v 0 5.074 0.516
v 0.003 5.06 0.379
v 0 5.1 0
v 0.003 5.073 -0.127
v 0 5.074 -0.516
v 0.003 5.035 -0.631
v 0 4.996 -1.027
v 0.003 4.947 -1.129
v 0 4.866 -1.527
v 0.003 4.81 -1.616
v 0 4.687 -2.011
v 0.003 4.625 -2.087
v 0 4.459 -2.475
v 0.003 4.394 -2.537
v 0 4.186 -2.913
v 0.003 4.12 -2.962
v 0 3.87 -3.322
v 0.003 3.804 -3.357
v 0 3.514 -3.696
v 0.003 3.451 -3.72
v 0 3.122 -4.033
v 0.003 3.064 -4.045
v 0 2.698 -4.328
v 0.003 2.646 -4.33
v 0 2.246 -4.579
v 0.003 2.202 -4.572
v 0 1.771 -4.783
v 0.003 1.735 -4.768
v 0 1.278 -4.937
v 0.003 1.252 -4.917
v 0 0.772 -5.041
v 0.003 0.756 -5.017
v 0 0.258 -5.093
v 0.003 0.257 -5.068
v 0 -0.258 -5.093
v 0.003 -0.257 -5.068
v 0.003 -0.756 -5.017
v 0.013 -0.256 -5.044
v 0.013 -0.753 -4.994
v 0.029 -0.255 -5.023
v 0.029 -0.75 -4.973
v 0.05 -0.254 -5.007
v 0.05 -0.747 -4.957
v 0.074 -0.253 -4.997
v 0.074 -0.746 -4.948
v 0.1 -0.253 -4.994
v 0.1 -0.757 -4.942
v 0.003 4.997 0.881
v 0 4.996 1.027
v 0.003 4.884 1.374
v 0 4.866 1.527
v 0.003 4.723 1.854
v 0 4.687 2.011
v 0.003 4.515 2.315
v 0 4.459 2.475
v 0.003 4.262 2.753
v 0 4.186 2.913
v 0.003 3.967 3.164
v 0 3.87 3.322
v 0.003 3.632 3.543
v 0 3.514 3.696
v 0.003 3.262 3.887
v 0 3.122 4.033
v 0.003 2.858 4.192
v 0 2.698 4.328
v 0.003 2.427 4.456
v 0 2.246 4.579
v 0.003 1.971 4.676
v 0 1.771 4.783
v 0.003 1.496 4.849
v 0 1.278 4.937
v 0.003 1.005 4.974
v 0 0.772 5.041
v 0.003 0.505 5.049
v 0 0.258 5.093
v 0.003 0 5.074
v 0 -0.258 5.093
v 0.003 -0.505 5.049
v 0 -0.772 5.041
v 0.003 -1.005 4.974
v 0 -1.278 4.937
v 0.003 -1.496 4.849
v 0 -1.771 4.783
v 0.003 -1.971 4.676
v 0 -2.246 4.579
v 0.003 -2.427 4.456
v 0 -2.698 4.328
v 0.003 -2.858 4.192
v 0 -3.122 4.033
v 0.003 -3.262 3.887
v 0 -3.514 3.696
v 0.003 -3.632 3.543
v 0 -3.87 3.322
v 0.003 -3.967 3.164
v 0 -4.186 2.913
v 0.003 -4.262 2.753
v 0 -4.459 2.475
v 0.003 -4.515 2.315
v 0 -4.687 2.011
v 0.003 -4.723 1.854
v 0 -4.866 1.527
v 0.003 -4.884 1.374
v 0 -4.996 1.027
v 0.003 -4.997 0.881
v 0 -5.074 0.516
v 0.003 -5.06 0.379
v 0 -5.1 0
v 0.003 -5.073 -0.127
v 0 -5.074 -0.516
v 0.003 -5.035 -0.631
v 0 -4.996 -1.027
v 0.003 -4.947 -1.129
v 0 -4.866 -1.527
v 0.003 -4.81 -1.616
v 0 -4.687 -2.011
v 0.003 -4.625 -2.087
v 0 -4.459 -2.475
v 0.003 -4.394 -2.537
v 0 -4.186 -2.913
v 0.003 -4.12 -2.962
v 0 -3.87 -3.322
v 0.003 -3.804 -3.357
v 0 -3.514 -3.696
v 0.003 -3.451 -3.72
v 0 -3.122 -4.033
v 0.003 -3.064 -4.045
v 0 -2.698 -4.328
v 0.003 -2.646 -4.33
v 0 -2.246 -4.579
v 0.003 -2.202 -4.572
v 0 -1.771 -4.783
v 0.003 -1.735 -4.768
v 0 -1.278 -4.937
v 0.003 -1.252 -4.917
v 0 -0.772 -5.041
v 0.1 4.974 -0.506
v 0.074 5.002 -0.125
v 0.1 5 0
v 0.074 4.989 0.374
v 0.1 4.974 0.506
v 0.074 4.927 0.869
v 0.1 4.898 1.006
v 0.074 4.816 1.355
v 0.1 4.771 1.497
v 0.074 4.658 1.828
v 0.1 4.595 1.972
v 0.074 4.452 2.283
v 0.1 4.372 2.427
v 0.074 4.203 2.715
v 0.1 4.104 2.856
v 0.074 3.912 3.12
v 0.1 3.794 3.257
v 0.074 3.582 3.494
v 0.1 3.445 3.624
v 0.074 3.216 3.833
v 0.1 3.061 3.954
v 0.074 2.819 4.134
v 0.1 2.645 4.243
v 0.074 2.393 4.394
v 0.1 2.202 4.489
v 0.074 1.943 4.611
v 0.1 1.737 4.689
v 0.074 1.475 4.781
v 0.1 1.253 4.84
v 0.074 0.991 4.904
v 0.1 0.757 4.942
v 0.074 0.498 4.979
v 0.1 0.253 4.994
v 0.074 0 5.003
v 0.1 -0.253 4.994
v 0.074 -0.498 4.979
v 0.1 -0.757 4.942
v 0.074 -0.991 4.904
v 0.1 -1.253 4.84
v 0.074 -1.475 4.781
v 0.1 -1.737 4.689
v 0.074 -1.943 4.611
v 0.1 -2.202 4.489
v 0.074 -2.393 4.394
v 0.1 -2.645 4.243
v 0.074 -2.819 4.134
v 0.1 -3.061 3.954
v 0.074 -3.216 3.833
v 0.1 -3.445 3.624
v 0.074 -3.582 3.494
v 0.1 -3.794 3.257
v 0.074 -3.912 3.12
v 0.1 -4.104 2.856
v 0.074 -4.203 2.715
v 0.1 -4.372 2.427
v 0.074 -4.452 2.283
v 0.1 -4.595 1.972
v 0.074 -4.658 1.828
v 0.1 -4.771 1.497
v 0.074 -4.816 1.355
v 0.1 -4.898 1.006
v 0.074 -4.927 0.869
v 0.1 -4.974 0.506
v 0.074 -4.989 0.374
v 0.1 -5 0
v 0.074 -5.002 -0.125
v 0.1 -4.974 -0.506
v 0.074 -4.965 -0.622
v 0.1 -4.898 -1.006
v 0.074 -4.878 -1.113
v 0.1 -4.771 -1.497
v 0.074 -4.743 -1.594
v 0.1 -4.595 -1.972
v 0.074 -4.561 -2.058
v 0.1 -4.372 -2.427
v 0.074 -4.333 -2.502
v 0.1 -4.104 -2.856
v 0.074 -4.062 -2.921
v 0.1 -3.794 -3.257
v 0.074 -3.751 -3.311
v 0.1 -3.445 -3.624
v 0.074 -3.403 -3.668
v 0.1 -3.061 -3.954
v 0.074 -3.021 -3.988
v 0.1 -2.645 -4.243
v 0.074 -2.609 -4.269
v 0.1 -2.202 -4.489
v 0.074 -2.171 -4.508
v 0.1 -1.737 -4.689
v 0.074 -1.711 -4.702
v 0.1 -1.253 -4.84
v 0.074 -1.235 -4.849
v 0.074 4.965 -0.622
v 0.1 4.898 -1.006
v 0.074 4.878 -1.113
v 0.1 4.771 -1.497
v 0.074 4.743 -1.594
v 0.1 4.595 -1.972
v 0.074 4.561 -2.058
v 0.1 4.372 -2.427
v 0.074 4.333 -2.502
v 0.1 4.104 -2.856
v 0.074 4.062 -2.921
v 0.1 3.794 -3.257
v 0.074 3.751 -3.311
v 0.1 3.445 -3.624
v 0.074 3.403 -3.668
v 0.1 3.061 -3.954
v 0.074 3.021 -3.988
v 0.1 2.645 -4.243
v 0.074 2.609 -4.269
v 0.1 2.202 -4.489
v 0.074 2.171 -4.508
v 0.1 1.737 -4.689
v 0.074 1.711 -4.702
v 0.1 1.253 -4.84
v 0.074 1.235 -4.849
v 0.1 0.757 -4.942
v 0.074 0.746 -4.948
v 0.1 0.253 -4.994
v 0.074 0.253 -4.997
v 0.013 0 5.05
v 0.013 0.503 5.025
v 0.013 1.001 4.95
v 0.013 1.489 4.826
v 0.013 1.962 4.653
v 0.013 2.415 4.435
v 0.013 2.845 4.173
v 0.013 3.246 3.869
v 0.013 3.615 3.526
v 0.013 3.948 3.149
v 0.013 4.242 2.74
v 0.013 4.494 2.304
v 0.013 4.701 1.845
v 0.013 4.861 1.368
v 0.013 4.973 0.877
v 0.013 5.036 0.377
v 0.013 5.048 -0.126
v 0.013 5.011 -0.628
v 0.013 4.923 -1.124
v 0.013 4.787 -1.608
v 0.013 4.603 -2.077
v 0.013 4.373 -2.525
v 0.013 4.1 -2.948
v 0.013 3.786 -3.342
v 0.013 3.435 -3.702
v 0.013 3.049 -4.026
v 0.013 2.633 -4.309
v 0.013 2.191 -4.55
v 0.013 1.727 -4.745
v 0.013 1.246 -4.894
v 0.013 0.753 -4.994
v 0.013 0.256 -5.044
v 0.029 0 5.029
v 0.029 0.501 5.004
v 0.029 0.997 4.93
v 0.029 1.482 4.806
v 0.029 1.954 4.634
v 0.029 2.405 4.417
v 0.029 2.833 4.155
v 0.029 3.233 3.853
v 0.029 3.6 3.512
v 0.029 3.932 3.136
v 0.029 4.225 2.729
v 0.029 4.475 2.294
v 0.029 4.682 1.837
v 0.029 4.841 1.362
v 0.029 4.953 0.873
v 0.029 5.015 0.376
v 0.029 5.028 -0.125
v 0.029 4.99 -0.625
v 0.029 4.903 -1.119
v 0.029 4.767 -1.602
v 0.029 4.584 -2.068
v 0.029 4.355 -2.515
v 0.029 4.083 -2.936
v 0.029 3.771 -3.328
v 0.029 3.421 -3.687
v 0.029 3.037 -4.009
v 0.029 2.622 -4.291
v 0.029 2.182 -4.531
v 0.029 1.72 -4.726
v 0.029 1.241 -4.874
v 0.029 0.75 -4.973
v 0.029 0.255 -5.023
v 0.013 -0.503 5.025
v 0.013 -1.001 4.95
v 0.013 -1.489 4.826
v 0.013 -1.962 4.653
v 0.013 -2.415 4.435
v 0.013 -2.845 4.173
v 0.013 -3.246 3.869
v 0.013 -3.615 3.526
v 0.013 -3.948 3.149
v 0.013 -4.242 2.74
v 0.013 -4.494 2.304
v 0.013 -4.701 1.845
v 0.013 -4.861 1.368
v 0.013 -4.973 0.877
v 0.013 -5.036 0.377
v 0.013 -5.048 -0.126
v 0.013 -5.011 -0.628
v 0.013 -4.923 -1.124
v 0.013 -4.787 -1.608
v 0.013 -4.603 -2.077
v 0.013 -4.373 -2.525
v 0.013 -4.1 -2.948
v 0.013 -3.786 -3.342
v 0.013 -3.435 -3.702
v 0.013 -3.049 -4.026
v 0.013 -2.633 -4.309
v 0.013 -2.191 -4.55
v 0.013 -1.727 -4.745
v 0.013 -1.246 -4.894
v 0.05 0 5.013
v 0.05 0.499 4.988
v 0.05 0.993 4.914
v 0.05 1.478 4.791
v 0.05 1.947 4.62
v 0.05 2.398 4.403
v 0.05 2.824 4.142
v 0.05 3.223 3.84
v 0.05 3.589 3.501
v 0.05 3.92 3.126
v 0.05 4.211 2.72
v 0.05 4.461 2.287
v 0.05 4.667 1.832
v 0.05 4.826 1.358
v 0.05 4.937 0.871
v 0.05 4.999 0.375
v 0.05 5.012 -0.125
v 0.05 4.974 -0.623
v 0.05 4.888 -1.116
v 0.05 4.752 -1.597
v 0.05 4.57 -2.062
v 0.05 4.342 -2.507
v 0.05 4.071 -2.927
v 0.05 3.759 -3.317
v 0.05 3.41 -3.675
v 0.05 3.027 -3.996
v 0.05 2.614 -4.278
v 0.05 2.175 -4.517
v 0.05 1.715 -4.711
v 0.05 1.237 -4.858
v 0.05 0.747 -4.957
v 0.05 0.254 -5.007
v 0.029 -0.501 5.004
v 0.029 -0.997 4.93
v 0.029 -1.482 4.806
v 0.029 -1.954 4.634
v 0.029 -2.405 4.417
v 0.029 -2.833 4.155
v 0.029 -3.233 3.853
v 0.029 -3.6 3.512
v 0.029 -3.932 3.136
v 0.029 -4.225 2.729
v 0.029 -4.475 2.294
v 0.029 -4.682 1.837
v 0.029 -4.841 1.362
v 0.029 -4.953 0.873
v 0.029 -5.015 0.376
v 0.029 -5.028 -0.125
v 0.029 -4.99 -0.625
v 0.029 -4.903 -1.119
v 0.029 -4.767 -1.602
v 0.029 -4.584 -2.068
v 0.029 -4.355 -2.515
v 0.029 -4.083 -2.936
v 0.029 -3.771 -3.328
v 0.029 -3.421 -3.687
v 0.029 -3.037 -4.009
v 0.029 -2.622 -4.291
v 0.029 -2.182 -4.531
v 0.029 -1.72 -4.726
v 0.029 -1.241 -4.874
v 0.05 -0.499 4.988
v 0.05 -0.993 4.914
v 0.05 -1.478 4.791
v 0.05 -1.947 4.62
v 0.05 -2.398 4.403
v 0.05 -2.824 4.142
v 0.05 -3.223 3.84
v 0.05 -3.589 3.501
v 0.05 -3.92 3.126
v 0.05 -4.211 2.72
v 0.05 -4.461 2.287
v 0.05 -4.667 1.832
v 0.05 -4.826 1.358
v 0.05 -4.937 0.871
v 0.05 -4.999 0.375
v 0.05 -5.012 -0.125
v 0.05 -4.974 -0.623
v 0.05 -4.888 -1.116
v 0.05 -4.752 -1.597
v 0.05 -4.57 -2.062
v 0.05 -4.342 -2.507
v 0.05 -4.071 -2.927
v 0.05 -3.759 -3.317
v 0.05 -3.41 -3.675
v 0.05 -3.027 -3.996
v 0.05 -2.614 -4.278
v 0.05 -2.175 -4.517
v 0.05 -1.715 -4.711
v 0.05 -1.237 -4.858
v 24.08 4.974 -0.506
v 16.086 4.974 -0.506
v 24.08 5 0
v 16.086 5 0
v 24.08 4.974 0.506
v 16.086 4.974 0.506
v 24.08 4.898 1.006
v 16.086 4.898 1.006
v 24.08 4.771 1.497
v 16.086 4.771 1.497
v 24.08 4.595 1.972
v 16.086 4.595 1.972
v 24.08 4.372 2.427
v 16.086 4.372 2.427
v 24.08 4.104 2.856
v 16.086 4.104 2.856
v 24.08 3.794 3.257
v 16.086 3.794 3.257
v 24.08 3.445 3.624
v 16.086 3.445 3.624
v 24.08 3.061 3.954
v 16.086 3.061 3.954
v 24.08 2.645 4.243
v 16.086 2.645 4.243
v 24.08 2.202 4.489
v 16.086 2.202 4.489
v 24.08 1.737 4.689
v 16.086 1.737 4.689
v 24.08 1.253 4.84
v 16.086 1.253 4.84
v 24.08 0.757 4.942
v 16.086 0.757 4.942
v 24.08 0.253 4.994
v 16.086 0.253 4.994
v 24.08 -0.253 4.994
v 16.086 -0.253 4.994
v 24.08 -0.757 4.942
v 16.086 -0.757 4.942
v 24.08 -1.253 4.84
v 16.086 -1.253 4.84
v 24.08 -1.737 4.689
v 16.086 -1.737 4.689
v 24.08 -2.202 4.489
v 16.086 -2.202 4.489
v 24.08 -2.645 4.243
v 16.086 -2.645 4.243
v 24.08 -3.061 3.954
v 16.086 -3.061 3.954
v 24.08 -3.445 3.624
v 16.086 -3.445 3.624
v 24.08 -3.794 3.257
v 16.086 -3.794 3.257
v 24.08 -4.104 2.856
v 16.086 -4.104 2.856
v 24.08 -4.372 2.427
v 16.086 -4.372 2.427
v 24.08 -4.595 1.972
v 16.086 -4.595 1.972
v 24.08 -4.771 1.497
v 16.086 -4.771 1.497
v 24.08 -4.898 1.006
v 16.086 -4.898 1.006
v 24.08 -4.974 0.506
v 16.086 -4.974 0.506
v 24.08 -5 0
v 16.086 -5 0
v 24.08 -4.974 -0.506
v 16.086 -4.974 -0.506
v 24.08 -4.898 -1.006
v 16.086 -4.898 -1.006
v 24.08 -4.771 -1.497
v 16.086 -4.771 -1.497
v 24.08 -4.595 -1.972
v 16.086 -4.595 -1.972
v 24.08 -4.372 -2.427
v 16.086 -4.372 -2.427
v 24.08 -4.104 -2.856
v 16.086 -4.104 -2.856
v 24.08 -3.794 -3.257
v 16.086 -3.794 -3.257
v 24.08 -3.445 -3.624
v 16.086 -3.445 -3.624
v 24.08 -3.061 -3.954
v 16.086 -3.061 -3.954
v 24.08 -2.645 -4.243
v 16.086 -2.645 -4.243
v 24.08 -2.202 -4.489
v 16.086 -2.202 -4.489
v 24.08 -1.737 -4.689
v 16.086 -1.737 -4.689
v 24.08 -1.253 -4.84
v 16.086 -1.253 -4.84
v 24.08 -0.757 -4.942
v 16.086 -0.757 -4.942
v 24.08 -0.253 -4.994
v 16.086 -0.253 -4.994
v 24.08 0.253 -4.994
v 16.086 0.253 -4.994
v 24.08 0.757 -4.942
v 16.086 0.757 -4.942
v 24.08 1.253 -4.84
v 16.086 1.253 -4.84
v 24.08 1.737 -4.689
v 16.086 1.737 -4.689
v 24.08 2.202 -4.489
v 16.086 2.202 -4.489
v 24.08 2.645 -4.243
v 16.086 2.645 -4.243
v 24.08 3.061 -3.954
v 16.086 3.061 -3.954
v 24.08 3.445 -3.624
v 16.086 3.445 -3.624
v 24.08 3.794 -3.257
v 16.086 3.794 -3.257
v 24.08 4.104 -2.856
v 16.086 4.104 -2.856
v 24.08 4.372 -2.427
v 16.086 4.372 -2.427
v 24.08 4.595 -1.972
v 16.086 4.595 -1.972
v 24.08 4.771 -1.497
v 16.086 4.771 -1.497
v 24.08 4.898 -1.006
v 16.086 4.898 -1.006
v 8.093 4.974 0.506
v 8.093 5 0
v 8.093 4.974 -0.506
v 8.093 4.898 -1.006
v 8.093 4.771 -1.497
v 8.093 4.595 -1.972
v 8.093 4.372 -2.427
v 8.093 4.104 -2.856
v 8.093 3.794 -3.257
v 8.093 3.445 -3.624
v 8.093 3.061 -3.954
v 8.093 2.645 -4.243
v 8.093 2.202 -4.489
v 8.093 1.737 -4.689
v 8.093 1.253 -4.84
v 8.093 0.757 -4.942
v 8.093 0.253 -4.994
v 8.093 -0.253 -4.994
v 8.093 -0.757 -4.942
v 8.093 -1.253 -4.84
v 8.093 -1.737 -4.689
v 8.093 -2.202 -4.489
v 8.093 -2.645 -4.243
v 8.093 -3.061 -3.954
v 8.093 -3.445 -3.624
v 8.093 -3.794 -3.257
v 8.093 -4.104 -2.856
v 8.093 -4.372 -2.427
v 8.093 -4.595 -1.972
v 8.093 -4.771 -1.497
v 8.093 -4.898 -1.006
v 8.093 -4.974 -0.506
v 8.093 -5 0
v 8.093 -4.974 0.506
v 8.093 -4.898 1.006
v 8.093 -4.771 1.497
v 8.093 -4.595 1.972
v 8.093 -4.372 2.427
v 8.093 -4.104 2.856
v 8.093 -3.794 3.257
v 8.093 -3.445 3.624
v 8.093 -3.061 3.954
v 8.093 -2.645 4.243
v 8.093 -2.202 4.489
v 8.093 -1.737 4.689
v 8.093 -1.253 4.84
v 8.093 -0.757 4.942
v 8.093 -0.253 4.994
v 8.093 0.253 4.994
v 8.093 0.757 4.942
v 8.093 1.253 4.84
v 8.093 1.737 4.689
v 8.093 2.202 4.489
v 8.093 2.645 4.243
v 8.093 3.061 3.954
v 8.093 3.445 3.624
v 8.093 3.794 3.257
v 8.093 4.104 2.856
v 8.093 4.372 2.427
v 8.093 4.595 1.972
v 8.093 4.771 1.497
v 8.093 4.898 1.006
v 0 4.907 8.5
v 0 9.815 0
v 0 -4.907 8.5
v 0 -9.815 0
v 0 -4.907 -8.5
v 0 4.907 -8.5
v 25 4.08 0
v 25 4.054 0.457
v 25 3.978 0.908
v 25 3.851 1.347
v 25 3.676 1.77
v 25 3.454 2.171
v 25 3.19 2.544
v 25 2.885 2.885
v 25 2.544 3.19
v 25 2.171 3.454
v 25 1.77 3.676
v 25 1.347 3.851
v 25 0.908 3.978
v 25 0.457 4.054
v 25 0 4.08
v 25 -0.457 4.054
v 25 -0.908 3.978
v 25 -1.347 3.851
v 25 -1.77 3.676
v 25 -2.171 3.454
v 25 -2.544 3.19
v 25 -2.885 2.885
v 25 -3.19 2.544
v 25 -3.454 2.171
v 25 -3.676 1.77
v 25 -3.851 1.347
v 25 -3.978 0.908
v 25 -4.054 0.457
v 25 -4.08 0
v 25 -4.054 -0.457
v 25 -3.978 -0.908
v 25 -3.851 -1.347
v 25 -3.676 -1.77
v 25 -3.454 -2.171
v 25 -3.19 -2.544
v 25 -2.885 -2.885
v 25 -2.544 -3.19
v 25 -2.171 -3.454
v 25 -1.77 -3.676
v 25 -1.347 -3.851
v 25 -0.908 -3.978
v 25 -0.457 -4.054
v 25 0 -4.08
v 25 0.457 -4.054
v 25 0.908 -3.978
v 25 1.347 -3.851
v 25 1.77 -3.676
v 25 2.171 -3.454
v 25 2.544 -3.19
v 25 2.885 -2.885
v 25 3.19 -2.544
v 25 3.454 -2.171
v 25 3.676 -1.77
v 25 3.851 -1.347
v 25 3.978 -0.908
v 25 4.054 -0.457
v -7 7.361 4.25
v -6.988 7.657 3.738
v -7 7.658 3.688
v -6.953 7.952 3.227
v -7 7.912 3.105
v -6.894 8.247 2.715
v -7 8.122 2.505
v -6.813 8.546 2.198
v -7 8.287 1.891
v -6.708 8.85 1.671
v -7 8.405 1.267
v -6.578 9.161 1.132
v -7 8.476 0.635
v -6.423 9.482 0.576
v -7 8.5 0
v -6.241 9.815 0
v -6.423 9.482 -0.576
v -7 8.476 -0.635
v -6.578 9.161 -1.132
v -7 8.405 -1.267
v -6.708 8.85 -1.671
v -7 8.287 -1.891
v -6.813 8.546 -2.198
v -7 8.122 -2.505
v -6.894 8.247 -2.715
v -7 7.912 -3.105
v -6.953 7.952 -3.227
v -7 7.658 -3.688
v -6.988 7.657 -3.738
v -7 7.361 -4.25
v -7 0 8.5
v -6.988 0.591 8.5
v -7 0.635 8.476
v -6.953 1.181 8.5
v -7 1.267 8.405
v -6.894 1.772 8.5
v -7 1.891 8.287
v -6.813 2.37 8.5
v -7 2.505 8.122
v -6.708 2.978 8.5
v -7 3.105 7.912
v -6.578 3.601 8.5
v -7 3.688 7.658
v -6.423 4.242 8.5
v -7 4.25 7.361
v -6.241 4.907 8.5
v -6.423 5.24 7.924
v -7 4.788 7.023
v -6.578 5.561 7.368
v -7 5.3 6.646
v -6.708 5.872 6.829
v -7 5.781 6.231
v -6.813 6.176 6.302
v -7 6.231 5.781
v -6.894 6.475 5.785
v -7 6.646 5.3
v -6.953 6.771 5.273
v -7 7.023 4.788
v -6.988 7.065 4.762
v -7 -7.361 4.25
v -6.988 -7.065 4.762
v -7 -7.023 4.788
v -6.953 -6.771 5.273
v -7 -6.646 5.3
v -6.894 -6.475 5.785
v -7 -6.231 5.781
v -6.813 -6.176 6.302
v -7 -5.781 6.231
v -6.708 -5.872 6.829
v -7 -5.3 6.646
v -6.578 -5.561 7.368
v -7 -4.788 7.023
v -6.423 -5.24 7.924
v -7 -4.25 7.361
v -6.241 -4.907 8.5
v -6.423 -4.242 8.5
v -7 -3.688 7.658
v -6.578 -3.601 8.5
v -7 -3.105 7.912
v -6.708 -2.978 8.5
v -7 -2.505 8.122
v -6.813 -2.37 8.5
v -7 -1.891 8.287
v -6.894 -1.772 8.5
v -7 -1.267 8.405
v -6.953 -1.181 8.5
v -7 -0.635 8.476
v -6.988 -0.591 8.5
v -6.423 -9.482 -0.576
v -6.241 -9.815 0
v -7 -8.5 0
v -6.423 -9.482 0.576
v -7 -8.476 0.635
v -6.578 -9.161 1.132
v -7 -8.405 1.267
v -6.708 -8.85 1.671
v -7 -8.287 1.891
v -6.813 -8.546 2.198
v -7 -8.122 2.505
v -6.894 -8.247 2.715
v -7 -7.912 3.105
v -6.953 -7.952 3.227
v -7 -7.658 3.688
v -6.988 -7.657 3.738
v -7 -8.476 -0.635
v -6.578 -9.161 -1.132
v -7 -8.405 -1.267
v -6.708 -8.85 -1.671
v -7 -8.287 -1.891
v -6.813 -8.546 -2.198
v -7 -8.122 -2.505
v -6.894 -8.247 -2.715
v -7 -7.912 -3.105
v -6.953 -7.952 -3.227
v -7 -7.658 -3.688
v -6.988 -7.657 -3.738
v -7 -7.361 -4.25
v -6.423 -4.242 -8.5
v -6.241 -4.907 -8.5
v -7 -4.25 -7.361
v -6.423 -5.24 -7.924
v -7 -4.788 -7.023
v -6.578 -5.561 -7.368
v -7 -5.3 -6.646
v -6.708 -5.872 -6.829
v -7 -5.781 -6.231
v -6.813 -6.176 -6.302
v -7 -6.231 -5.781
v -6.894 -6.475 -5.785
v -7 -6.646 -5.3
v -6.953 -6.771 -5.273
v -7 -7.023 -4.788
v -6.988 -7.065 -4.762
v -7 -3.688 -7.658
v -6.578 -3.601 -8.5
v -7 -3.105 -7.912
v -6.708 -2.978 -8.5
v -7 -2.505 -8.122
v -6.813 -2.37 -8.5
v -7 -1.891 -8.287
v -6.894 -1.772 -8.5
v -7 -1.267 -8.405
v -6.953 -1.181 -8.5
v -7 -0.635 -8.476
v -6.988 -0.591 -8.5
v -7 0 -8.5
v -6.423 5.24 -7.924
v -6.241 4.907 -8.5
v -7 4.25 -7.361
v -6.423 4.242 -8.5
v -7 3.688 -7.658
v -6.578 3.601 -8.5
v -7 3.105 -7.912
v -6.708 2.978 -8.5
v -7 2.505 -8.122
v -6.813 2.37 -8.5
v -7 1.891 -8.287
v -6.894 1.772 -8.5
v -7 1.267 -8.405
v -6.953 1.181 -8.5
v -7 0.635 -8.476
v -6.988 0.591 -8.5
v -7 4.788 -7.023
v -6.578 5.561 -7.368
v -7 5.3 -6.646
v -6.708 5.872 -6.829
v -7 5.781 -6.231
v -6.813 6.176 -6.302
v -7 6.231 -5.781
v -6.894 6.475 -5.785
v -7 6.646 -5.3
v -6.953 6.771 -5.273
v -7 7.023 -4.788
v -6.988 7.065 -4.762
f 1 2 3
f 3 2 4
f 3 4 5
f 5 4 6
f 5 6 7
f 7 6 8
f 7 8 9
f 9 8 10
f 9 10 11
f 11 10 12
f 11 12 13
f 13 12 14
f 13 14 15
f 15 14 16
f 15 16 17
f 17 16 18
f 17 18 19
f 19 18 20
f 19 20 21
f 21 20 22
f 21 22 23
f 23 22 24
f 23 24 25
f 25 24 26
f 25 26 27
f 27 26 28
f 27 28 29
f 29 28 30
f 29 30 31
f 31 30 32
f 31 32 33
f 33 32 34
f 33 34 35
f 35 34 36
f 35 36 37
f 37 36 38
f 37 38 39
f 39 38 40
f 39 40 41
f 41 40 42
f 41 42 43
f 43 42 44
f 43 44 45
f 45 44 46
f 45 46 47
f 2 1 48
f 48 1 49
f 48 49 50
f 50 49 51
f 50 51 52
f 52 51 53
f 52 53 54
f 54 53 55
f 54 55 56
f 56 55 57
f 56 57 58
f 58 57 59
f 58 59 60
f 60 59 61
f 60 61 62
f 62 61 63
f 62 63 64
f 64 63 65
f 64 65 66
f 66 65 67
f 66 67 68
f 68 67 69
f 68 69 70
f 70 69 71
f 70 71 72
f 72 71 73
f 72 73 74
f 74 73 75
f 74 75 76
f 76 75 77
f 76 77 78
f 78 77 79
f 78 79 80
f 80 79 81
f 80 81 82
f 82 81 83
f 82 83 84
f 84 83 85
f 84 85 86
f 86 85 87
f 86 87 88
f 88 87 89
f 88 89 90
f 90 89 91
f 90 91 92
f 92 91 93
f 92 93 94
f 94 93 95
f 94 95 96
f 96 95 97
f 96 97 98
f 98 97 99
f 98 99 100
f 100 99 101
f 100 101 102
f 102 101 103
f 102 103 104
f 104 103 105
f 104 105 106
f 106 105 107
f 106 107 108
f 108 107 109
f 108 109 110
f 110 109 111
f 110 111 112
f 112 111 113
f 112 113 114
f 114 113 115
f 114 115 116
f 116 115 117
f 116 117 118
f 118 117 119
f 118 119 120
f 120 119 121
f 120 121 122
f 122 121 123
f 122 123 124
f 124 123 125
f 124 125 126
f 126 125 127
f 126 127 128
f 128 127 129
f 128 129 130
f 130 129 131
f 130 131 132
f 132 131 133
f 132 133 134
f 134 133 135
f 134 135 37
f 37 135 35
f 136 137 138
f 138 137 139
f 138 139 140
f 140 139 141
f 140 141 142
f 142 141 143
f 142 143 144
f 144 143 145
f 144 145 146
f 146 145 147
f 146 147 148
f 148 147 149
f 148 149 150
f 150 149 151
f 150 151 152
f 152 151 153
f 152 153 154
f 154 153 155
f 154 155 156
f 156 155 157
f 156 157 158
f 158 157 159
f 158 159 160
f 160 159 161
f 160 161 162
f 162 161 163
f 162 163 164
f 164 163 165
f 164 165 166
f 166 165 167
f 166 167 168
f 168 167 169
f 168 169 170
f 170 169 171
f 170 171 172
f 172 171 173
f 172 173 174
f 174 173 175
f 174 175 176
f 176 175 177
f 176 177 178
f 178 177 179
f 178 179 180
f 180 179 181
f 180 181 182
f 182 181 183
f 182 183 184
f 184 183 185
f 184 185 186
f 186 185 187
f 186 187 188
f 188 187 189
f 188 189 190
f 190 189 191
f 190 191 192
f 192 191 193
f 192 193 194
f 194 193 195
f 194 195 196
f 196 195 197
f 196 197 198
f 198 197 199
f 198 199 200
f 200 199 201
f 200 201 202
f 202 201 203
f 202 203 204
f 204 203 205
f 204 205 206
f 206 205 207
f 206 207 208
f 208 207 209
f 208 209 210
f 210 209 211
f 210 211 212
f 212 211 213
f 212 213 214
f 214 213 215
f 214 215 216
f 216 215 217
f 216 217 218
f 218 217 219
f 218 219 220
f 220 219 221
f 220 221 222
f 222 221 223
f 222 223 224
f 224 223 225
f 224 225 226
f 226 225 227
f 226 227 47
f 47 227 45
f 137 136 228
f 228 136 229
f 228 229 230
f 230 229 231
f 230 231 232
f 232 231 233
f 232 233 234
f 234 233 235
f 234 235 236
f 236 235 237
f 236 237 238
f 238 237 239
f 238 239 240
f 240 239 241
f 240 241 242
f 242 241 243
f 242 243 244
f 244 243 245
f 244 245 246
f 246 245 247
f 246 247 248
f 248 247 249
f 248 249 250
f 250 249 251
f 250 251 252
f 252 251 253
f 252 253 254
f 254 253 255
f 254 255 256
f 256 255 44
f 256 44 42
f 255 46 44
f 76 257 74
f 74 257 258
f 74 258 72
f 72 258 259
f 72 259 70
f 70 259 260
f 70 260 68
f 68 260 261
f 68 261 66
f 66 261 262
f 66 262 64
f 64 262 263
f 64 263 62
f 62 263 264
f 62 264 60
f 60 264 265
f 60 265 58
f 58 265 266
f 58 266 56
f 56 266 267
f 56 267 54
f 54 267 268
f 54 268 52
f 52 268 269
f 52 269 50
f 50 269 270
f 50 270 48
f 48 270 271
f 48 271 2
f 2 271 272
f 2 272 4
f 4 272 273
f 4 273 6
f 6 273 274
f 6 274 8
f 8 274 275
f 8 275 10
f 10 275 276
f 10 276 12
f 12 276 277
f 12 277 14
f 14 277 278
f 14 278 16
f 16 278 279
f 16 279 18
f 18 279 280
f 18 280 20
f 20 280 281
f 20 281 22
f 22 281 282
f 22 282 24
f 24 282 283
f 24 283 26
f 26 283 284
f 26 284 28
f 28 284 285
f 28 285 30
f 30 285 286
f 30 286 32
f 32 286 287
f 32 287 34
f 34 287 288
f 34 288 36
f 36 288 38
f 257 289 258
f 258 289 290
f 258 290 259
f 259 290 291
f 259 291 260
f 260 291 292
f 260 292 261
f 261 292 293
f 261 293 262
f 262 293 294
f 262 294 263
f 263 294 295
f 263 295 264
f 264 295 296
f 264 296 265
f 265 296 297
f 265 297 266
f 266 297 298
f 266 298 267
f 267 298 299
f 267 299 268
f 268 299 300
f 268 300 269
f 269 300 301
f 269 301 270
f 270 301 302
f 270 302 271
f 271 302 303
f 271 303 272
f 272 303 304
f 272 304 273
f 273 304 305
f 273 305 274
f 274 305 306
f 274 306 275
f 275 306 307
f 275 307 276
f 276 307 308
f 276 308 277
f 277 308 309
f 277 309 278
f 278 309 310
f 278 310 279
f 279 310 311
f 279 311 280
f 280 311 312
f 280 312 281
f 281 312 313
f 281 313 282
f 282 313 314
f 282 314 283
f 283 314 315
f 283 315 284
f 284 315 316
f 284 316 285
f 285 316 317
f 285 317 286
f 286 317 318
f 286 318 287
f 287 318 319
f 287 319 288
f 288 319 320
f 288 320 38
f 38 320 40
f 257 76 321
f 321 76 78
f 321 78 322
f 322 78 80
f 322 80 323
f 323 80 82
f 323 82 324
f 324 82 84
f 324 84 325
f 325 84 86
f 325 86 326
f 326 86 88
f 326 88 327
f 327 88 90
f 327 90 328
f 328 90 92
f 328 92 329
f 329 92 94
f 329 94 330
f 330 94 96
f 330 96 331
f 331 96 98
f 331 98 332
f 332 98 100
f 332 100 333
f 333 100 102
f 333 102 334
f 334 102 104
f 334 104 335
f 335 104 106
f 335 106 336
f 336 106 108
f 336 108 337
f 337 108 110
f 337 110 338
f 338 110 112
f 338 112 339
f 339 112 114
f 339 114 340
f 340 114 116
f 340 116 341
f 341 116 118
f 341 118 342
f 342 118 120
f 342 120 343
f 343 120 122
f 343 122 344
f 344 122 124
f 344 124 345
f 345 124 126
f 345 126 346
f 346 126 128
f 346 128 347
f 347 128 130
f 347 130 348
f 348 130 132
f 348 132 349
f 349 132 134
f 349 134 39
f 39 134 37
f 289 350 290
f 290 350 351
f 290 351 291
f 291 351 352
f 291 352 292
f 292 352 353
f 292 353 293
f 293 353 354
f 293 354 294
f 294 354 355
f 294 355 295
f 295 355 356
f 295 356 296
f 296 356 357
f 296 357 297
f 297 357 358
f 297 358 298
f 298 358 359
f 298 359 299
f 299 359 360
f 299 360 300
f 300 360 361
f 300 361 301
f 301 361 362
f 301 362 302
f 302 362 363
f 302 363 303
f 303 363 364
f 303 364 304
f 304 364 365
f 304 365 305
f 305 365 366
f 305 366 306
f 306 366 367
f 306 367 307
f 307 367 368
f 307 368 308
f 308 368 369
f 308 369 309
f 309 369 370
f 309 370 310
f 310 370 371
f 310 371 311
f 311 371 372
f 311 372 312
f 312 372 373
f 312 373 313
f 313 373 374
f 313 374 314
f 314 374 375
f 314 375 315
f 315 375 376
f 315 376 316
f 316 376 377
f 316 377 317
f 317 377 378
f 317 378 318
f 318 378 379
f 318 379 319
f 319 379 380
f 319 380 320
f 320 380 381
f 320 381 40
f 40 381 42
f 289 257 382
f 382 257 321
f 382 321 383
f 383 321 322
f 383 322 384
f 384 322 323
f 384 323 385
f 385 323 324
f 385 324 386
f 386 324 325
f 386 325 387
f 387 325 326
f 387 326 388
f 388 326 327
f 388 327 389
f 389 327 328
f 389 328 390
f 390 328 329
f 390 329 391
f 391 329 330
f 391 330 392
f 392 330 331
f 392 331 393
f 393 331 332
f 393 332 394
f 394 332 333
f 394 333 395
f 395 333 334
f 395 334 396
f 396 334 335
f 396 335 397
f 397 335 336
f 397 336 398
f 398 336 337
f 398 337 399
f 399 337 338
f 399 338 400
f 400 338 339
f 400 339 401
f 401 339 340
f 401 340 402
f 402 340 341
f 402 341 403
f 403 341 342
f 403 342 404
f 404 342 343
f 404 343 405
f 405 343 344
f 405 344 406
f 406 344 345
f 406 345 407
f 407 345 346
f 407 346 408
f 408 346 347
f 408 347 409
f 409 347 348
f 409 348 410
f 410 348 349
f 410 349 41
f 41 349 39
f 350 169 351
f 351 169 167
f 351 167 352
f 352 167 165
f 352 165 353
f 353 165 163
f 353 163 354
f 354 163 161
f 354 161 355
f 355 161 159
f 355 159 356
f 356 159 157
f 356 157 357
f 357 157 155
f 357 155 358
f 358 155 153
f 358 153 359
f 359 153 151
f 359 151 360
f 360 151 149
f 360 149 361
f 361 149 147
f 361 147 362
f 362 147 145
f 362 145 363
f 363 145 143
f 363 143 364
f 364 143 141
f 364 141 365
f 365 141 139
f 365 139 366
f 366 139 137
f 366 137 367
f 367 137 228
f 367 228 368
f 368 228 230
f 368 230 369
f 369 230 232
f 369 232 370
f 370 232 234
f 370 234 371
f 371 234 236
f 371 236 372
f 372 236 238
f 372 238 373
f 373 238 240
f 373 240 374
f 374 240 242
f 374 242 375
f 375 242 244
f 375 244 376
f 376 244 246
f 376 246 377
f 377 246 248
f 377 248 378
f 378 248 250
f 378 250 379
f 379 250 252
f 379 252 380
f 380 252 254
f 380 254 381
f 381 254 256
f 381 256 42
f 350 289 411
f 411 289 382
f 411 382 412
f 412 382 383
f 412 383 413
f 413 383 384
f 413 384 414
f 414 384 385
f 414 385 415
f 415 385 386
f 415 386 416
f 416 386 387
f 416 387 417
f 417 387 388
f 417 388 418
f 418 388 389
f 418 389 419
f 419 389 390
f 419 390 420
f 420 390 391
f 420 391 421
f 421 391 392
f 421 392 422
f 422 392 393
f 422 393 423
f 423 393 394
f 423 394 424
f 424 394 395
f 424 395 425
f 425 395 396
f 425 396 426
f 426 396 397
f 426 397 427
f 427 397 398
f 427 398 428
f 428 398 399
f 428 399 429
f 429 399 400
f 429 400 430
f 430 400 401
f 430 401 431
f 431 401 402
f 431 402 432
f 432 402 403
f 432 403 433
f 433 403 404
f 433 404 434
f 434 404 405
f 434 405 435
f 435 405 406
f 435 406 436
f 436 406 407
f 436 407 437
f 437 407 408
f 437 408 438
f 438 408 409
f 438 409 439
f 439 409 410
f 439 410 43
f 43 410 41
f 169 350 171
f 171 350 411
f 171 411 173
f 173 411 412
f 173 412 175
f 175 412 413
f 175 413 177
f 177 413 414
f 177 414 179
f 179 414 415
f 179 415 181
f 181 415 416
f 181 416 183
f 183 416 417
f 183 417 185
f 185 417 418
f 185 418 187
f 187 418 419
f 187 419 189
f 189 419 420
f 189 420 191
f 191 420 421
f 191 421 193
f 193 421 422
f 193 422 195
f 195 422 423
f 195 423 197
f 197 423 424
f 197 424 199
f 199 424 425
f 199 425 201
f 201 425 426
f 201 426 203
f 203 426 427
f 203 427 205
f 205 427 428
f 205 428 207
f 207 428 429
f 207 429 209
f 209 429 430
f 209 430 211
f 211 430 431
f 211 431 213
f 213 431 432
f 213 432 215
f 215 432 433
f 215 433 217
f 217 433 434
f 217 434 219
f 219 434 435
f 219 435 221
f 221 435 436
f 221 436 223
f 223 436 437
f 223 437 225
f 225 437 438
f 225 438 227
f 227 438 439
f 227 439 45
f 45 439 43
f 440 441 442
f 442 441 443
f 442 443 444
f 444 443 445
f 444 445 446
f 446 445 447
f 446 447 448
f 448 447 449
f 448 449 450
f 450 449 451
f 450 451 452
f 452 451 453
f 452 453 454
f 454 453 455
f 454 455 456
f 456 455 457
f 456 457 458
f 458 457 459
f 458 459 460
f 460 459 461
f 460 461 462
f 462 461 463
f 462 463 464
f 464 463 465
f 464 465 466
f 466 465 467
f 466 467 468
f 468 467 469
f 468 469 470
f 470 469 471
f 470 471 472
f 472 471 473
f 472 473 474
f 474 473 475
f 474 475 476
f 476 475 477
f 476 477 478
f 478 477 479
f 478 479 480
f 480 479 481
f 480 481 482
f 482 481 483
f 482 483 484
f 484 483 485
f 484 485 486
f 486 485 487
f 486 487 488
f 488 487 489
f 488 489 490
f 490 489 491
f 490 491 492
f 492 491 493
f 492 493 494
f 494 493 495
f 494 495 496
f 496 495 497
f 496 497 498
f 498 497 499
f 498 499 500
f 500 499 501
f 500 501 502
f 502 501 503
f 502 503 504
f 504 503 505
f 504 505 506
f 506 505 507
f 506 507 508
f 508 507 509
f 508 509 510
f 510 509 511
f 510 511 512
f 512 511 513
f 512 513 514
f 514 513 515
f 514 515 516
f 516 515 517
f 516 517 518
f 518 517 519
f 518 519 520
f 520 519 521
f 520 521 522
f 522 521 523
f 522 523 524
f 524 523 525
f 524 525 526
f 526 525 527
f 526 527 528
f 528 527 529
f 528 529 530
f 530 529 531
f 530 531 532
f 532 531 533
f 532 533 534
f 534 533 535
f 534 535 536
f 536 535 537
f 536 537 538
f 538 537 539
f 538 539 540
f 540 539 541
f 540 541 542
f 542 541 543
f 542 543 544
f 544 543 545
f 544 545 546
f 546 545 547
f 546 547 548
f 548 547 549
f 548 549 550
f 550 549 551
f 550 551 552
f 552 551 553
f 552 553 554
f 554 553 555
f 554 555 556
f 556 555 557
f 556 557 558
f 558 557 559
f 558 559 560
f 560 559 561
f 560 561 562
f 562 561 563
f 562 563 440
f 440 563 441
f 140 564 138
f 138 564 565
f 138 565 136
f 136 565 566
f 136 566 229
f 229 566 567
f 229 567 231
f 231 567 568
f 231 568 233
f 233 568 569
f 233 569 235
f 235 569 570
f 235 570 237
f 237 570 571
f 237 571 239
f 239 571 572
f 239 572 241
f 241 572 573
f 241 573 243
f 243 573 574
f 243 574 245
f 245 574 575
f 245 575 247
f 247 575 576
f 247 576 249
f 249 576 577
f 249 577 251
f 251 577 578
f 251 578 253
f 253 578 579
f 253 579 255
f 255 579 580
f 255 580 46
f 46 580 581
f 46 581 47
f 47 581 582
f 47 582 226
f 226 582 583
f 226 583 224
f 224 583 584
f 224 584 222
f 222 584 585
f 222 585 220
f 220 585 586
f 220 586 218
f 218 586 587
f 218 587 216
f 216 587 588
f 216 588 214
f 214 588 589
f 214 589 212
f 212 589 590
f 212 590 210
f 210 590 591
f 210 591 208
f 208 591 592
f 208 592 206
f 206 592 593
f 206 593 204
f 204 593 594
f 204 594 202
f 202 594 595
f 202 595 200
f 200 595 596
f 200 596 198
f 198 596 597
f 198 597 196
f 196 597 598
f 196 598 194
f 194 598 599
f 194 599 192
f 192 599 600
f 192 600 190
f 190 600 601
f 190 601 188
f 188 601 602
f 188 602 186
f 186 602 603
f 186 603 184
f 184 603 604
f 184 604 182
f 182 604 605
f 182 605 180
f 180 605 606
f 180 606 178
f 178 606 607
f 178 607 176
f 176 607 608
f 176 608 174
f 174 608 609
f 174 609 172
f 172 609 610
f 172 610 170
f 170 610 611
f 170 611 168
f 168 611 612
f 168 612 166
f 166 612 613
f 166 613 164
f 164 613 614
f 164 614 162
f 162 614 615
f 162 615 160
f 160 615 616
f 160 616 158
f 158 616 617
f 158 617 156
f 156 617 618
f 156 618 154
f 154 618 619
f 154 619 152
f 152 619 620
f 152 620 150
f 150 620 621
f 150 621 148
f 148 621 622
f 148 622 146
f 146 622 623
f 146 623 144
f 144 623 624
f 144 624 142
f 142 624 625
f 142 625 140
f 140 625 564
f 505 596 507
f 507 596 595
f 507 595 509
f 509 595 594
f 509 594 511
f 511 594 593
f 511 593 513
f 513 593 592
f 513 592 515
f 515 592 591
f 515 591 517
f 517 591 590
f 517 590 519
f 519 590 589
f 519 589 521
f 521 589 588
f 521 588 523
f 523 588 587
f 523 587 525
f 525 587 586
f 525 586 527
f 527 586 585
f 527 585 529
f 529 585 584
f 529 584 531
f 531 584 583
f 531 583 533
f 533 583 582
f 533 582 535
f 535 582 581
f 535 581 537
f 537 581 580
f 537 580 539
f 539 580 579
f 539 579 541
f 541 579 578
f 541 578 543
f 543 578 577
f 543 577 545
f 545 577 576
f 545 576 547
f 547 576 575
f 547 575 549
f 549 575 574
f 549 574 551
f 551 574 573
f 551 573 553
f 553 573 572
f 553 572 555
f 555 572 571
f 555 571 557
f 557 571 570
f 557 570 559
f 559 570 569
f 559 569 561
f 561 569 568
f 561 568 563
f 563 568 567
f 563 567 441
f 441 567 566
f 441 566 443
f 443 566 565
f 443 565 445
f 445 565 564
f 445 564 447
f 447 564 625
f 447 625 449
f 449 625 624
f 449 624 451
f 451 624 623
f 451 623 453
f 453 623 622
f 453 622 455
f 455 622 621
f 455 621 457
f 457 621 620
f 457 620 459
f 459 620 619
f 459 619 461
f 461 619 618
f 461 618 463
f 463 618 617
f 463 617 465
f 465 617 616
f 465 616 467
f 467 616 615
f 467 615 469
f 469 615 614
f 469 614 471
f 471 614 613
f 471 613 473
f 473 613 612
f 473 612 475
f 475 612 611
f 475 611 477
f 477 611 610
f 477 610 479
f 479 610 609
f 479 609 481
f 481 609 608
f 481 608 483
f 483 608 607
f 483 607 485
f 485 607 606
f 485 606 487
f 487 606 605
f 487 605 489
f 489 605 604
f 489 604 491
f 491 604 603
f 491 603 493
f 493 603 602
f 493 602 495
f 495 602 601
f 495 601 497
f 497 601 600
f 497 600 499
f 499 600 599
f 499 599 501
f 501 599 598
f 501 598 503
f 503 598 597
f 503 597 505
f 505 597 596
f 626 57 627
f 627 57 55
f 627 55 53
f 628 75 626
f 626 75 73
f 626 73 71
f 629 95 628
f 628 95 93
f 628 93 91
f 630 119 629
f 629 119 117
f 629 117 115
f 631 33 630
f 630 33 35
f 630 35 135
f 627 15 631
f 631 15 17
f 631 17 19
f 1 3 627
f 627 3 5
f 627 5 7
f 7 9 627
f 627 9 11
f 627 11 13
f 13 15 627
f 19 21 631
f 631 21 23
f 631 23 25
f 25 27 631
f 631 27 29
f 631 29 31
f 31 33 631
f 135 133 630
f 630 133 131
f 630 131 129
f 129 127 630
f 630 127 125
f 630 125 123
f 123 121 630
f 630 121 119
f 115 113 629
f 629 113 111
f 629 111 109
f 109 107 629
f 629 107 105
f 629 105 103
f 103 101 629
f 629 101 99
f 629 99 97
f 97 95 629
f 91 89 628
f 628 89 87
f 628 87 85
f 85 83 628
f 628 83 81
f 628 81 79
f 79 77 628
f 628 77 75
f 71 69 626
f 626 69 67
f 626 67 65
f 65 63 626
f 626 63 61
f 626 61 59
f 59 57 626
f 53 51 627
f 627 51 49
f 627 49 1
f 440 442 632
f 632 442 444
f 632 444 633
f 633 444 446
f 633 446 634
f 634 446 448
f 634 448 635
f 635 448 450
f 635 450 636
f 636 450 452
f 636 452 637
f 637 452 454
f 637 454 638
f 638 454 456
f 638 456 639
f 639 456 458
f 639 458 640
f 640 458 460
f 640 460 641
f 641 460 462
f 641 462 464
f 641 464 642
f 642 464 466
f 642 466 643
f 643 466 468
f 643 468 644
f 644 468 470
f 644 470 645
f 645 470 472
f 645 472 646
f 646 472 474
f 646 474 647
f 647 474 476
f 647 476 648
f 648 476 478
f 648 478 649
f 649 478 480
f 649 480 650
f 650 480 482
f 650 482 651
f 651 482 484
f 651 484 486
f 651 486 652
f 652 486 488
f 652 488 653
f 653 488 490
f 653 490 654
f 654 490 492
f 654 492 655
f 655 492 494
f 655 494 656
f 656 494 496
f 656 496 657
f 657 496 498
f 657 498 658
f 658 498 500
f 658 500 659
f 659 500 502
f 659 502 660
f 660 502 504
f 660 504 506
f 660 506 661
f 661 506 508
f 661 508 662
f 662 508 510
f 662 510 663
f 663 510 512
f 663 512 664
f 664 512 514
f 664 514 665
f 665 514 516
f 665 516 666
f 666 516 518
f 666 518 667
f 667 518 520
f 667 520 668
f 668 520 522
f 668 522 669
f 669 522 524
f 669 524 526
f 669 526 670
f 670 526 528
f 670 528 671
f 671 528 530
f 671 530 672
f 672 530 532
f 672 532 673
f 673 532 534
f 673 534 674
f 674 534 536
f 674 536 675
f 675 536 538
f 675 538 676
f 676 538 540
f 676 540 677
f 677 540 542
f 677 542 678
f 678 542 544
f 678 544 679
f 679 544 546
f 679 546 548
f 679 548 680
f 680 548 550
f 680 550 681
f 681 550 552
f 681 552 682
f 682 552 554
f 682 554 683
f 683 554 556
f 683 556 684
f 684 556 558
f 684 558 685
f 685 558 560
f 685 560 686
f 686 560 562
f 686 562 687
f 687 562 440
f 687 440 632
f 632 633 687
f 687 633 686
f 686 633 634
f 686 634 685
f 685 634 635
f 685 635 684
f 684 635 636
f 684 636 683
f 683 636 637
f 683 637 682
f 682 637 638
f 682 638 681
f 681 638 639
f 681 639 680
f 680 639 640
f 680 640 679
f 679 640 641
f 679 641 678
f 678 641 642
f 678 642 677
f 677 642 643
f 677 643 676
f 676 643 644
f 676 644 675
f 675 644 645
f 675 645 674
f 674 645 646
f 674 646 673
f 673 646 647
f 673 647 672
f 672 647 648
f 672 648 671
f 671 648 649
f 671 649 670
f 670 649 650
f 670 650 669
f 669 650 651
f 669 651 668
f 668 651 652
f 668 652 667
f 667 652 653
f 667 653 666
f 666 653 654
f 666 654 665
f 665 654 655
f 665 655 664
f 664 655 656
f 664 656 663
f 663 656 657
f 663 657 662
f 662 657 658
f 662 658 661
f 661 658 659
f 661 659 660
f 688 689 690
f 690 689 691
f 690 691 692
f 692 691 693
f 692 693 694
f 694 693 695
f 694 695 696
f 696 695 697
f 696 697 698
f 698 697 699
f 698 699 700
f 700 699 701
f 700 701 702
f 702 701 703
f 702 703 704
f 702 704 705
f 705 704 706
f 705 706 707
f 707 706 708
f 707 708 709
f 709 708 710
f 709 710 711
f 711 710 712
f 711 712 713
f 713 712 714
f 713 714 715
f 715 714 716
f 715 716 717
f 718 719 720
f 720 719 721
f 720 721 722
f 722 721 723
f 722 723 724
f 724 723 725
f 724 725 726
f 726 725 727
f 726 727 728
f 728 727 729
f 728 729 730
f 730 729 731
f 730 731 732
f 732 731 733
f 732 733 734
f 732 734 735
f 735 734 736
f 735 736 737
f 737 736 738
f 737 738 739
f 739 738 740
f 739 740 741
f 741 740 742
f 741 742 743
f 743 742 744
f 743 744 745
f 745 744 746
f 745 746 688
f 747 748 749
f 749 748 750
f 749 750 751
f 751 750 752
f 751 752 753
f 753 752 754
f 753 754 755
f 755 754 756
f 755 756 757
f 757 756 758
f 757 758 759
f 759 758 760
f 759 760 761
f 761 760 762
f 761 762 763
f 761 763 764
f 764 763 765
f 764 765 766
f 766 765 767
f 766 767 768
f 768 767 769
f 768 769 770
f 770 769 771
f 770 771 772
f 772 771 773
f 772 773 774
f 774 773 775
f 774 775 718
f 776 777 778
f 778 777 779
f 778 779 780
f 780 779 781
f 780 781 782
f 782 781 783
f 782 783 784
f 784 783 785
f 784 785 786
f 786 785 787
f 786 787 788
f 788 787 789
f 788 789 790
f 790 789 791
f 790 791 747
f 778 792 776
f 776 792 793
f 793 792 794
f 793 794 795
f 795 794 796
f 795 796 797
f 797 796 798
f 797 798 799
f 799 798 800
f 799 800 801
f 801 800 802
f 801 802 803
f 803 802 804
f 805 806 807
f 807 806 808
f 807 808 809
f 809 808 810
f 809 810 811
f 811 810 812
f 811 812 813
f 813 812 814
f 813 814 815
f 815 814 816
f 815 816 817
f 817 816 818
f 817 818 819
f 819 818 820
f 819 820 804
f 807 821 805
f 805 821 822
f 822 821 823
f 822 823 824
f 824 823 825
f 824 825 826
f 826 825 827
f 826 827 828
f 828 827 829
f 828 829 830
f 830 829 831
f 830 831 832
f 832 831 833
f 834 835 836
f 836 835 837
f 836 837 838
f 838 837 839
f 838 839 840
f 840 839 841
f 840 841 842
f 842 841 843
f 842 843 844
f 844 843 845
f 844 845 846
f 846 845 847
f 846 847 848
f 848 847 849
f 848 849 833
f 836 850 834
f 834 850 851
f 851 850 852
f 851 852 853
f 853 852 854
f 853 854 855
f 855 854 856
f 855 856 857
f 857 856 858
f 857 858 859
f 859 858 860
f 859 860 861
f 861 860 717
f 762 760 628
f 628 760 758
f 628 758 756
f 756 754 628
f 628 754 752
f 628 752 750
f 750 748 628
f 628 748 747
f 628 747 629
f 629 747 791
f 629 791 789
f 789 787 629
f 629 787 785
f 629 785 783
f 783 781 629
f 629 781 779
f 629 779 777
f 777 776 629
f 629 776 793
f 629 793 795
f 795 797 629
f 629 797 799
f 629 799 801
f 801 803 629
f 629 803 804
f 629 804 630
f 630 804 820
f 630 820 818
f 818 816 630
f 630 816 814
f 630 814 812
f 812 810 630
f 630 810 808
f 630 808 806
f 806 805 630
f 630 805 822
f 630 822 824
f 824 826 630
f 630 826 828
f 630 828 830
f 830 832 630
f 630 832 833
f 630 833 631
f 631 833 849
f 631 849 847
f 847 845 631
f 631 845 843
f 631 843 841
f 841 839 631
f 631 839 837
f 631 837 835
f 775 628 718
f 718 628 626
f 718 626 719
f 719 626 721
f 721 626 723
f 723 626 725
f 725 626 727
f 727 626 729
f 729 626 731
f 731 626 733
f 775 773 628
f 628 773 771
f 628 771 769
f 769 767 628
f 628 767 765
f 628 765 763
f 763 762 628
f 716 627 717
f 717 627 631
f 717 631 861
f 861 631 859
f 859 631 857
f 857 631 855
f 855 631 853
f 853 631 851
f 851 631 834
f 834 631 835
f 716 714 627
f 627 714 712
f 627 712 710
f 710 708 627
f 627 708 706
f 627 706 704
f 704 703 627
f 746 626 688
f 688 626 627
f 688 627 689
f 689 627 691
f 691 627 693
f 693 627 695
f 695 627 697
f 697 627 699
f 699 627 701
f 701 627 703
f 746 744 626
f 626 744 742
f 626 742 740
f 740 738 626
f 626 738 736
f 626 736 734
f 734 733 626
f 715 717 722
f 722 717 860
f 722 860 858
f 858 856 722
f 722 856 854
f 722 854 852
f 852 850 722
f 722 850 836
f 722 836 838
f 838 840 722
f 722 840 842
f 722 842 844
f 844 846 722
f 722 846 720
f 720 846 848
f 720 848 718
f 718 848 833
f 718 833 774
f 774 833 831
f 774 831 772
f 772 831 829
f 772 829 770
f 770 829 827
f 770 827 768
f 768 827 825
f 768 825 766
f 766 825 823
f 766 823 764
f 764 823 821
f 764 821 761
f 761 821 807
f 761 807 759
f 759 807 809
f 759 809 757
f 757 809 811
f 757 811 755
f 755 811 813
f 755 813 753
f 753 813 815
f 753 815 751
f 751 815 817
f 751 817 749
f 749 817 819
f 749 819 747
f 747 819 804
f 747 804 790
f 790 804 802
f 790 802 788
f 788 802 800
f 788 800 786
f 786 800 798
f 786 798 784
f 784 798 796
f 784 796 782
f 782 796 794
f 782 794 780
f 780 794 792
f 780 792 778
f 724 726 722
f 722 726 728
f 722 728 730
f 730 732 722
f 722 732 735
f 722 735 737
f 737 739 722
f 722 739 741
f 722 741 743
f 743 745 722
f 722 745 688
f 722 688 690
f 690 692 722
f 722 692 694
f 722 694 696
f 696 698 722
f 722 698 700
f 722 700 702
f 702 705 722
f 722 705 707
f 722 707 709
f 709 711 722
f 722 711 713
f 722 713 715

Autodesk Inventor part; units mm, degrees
ref_plane "YZ Plane" through (0, 0, 0) normal (1, 0, 0) x (0, 1, 0)
ref_plane "XZ Plane" through (0, 0, 0) normal (0, 1, 0) x (-1, 0, 0)
sketch "Эскиз1" plane through (0, 0, 0) normal (0, 0, 1) x (1, 0, 0)
  line L0 (0, 5) -> (25, 5)
  line L1 (25, 5) -> (25, 0)
  line L2 (25, 0) -> (0, 0)
  line L3 (-5, 0) -> (30, 0) projected
  line L4 (0, -1) -> (0, 6) projected
  line L5 (0, 5) -> (0, 0)
  dimension "d2" = 10
  dimension "d59" = 25
revolve "Базовый элемент" add sketch "Эскиз1" angle 360 about axis through (25, 0, 0) along (-1, 0, 0)
sketch "Эскиз2" plane through (0, 0, 0) normal (-1, 0, 0) x (0, 0, 1)
  line L0 (0, 9.815) -> (8.5, 4.9075)
  line L1 (8.5, 4.9075) -> (8.5, -4.9075)
  line L2 (8.5, -4.9075) -> (0, -9.815)
  line L3 (0, -9.815) -> (-8.5, -4.9075)
  line L4 (-8.5, -4.9075) -> (-8.5, 4.9075)
  line L5 (-8.5, 4.9075) -> (0, 9.815)
  line L6 (-11.9, 0) -> (11.9, 0) projected
  line L7 (0, 13.7409) -> (0, -13.7409) projected
  point P0 (0, 0)
  point P1 (0, 0)
  dimension "d11" = 17
extrude "С головкой" add sketch "Эскиз2" along normal blind 7
sketch "Эскиз4" plane through (0, 0, 0) normal (0, 0, 1) x (1, 0, 0)
  line L0 (-6.0185, 10.2) -> (-7, 8.5)
  line L1 (-1.1, 0) -> (-0.234, 0)
  line L2 (-8.3532, 0) -> (1.1192, 0) projected
  line L3 (-7, 10.2) -> (-6.0185, 10.2)
  line L4 (-7, 8.5) -> (-7, 10.2)
  line L5 (0, 12.24) -> (0, -2.04) projected
  dimension "d65" = 17
  dimension "d67" = 30
  dimension "d68" = 20.4
  dimension "d69" = 7
revolve "Фаска1" cut sketch "Эскиз4" angle 360 about axis through (-1.1, 0, 0) along (1, 0, 0)
thread "Резьба" size "M10x1.5" class "6g" standard "ISO Metric profile" length 23.5
chamfer "Фаска2" distance 0.9202 distance2 0.9203 1 edges at (25, -5, 0) measured on face at (25, 1.974, 0.2121)
fillet "Fillet2" radius 0.1 1 edges at (0, -5, 0)
ref_plane "Work Plane1" through (1.525, 0, 0) normal (0, 0, 1) x (1, 0, 0)
equation "\"d2\" = GD"
equation "\"d59\" = NLG"
equation "\"d11\" = SW"
equation "\"d3\" = KOH"
equation "\"d71\" = RR"
equation "\"d15\" = GEL"
equation "\"d6\" = -0.5 * SPD + 0.5 * GD"
equation "\"d65\" = SW"
equation "\"d67\" = ANG1"
equation "\"d68\" = 1.2 * SW"
equation "\"d69\" = KOH"
equation "\"NLG\" = 25"
equation "\"GD\" = 10"
equation "\"KOH\" = 7"
equation "\"GEL\" = 23.5"
equation "\"SW\" = 17"
equation "\"SW0\" = 15.3"
equation "\"SPD\" = NND - 1.2269 * PTC"
equation "\"SD\" = 0"
equation "\"ANG1\" = 30deg"
equation "\"GAL\" = 0.61345 * PTC"
equation "\"GUL\" = 0.61345 * PTC"
equation "\"RR\" = 0.1"
equation "\"RR1\" = 0.1"
equation "\"GD1\" = THREADDIA - 1.2269 * PTC"
equation "\"TOA\" = 30deg"
equation "\"PTC\" = 1.5"
equation "\"E0\" = 1.155 * SW"
equation "\"NND\" = 10"
equation "\"THREADDIA\" = 10"
properties part number "Болт M10-6gx25 ГОСТ 7805-70" material "Сталь, мягкая"
